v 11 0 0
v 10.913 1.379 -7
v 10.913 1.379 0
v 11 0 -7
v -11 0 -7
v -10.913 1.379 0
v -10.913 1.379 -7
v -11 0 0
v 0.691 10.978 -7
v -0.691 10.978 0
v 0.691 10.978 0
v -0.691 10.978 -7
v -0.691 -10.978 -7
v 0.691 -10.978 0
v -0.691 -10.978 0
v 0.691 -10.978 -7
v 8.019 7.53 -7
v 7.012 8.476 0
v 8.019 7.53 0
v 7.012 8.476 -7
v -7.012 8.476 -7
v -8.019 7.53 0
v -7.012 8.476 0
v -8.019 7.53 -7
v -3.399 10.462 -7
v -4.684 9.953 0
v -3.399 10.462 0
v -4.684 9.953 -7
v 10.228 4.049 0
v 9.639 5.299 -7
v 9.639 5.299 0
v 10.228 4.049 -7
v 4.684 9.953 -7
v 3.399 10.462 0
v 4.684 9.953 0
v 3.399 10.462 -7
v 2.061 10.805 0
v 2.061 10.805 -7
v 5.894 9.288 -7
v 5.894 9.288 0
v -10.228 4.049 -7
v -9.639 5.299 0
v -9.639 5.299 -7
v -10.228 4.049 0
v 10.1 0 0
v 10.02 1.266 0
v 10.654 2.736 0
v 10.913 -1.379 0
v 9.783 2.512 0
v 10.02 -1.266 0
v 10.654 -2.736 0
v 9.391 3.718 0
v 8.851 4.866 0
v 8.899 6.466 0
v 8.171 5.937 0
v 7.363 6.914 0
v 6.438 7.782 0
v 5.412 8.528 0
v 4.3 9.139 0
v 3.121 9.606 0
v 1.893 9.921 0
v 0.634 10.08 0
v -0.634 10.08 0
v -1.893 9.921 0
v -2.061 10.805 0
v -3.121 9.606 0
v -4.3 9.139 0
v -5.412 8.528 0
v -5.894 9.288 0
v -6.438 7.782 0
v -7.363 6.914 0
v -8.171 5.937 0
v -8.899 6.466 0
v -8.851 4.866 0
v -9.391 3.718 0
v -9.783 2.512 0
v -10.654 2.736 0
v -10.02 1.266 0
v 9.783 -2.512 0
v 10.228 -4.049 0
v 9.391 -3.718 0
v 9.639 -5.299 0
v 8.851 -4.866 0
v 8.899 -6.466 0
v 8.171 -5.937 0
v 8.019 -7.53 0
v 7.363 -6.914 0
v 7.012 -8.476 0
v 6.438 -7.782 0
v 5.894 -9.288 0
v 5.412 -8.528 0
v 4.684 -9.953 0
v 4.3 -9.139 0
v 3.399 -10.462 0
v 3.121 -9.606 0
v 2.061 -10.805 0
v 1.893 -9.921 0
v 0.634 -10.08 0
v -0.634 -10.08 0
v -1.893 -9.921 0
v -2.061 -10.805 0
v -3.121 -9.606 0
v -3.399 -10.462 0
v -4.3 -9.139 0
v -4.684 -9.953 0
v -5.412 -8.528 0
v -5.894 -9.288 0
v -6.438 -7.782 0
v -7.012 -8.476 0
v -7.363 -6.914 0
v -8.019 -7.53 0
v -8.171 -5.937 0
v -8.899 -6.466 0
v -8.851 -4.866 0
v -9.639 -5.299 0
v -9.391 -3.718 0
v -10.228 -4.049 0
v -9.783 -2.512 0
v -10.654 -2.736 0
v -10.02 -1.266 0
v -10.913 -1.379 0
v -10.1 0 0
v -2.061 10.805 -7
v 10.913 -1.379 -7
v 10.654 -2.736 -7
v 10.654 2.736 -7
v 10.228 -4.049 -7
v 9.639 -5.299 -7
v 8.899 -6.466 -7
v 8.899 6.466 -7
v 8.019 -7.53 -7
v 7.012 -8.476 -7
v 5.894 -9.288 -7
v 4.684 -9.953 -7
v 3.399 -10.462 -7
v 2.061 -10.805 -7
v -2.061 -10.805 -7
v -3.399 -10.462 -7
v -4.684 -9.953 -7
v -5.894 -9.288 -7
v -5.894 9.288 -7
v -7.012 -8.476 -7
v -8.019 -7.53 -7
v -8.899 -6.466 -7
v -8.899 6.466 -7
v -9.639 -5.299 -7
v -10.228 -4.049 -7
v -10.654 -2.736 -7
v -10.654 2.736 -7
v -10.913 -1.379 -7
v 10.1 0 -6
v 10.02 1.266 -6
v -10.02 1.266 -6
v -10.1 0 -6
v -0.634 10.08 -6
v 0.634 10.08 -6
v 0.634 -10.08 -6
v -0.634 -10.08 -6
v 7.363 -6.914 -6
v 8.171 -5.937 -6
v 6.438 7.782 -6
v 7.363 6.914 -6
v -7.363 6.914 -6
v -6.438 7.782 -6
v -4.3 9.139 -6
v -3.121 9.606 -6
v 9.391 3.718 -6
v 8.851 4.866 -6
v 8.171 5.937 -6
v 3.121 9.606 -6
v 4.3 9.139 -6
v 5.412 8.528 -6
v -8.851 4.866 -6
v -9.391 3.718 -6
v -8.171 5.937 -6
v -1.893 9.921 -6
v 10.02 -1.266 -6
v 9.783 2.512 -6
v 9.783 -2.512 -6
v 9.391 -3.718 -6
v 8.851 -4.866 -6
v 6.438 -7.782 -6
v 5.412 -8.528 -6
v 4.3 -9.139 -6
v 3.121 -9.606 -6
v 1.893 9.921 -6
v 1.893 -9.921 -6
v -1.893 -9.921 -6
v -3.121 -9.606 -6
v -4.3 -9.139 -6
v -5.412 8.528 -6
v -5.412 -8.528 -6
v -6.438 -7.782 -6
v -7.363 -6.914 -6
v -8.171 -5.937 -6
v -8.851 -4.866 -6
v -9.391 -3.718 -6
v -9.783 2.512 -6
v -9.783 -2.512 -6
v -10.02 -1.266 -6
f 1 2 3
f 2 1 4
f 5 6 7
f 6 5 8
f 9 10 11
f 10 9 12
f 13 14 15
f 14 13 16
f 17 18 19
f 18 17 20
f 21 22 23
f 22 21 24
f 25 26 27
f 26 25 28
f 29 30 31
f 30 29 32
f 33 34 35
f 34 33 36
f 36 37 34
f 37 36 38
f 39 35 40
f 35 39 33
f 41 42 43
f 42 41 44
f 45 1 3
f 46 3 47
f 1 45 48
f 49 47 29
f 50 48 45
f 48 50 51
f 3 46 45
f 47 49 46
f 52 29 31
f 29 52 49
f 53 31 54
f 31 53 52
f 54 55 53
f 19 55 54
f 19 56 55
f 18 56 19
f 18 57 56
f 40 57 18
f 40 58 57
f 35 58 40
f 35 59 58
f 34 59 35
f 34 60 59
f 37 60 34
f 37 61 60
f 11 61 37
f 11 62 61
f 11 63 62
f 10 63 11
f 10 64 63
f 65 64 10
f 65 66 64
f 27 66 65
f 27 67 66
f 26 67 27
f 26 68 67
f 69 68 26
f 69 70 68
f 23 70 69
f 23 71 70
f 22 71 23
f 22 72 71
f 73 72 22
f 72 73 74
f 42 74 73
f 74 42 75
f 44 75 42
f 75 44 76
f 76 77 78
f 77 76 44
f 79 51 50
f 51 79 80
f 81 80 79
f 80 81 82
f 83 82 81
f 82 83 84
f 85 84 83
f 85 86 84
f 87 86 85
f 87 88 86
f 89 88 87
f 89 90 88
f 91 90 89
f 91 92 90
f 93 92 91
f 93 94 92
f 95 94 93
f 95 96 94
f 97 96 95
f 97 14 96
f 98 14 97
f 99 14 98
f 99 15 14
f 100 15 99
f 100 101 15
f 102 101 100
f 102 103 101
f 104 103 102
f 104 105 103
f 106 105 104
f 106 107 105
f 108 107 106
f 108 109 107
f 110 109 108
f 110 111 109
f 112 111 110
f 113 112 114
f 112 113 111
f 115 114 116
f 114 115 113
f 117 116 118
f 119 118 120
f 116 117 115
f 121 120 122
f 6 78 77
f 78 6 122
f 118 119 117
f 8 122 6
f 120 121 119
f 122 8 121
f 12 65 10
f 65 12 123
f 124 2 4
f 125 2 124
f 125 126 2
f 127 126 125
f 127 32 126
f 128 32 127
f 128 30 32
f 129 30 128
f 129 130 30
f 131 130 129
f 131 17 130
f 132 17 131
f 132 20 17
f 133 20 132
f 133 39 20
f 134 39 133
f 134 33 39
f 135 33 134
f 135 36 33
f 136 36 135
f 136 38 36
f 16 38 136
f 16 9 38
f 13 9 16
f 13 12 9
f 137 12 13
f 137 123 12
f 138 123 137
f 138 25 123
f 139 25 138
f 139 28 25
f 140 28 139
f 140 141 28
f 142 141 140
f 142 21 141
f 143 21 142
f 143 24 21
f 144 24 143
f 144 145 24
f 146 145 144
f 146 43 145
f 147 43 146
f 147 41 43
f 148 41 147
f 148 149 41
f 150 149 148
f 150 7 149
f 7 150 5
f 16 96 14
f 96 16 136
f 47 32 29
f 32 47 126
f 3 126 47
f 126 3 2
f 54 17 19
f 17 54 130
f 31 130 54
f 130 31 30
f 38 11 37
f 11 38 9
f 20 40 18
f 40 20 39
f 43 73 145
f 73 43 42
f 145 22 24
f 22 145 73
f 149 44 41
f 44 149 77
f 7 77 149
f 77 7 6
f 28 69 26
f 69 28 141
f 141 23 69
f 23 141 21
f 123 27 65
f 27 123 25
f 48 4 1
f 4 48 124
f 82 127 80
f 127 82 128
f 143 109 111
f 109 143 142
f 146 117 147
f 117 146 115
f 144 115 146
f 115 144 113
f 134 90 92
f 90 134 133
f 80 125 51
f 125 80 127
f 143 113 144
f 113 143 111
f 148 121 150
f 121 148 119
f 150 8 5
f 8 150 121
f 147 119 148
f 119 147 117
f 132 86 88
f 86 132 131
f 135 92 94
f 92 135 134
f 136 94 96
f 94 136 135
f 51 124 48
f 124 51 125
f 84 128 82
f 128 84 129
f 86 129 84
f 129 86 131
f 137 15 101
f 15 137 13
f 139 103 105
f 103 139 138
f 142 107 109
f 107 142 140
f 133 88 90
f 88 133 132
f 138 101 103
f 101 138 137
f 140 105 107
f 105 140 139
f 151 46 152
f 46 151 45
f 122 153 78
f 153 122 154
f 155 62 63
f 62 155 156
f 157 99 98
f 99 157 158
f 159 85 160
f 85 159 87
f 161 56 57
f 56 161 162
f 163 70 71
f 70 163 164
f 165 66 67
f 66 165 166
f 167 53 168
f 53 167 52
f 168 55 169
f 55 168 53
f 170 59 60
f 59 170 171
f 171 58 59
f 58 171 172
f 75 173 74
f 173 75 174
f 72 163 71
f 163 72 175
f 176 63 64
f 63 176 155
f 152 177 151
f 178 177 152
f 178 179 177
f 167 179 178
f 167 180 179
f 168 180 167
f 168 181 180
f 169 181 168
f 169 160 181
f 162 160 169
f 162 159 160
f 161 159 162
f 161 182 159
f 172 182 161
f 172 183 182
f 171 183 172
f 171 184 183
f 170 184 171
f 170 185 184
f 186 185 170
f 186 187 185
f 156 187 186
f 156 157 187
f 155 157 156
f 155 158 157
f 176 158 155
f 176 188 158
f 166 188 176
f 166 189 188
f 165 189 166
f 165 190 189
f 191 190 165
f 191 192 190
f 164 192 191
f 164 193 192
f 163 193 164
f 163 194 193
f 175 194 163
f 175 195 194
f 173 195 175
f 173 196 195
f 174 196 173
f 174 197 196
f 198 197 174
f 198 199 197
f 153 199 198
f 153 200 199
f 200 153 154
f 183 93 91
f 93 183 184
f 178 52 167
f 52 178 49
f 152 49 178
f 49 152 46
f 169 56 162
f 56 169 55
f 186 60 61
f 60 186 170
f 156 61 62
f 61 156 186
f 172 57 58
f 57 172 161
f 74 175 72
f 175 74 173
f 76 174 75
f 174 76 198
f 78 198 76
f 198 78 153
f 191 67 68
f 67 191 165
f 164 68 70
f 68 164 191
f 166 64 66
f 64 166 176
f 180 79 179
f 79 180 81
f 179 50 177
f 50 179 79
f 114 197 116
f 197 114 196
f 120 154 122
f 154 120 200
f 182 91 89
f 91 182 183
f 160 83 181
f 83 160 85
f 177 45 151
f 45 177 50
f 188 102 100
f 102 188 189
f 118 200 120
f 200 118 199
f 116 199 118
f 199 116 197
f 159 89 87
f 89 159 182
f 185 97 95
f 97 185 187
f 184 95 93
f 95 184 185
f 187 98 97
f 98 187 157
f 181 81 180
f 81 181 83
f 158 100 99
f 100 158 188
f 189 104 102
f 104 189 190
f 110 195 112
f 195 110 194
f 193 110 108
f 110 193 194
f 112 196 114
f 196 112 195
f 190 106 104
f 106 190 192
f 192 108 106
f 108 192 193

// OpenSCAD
$fn = 50;


difference() {
	union() {
		translate(v = [0, 0, -7.0000000000]) {
			cylinder(h = 7, r = 11.0000000000);
		}
	}
	union() {
		#translate(v = [0, 0, -6.0000000000]) {
			cylinder(h = 6, r = 10.1000000000);
		}
	}
}
